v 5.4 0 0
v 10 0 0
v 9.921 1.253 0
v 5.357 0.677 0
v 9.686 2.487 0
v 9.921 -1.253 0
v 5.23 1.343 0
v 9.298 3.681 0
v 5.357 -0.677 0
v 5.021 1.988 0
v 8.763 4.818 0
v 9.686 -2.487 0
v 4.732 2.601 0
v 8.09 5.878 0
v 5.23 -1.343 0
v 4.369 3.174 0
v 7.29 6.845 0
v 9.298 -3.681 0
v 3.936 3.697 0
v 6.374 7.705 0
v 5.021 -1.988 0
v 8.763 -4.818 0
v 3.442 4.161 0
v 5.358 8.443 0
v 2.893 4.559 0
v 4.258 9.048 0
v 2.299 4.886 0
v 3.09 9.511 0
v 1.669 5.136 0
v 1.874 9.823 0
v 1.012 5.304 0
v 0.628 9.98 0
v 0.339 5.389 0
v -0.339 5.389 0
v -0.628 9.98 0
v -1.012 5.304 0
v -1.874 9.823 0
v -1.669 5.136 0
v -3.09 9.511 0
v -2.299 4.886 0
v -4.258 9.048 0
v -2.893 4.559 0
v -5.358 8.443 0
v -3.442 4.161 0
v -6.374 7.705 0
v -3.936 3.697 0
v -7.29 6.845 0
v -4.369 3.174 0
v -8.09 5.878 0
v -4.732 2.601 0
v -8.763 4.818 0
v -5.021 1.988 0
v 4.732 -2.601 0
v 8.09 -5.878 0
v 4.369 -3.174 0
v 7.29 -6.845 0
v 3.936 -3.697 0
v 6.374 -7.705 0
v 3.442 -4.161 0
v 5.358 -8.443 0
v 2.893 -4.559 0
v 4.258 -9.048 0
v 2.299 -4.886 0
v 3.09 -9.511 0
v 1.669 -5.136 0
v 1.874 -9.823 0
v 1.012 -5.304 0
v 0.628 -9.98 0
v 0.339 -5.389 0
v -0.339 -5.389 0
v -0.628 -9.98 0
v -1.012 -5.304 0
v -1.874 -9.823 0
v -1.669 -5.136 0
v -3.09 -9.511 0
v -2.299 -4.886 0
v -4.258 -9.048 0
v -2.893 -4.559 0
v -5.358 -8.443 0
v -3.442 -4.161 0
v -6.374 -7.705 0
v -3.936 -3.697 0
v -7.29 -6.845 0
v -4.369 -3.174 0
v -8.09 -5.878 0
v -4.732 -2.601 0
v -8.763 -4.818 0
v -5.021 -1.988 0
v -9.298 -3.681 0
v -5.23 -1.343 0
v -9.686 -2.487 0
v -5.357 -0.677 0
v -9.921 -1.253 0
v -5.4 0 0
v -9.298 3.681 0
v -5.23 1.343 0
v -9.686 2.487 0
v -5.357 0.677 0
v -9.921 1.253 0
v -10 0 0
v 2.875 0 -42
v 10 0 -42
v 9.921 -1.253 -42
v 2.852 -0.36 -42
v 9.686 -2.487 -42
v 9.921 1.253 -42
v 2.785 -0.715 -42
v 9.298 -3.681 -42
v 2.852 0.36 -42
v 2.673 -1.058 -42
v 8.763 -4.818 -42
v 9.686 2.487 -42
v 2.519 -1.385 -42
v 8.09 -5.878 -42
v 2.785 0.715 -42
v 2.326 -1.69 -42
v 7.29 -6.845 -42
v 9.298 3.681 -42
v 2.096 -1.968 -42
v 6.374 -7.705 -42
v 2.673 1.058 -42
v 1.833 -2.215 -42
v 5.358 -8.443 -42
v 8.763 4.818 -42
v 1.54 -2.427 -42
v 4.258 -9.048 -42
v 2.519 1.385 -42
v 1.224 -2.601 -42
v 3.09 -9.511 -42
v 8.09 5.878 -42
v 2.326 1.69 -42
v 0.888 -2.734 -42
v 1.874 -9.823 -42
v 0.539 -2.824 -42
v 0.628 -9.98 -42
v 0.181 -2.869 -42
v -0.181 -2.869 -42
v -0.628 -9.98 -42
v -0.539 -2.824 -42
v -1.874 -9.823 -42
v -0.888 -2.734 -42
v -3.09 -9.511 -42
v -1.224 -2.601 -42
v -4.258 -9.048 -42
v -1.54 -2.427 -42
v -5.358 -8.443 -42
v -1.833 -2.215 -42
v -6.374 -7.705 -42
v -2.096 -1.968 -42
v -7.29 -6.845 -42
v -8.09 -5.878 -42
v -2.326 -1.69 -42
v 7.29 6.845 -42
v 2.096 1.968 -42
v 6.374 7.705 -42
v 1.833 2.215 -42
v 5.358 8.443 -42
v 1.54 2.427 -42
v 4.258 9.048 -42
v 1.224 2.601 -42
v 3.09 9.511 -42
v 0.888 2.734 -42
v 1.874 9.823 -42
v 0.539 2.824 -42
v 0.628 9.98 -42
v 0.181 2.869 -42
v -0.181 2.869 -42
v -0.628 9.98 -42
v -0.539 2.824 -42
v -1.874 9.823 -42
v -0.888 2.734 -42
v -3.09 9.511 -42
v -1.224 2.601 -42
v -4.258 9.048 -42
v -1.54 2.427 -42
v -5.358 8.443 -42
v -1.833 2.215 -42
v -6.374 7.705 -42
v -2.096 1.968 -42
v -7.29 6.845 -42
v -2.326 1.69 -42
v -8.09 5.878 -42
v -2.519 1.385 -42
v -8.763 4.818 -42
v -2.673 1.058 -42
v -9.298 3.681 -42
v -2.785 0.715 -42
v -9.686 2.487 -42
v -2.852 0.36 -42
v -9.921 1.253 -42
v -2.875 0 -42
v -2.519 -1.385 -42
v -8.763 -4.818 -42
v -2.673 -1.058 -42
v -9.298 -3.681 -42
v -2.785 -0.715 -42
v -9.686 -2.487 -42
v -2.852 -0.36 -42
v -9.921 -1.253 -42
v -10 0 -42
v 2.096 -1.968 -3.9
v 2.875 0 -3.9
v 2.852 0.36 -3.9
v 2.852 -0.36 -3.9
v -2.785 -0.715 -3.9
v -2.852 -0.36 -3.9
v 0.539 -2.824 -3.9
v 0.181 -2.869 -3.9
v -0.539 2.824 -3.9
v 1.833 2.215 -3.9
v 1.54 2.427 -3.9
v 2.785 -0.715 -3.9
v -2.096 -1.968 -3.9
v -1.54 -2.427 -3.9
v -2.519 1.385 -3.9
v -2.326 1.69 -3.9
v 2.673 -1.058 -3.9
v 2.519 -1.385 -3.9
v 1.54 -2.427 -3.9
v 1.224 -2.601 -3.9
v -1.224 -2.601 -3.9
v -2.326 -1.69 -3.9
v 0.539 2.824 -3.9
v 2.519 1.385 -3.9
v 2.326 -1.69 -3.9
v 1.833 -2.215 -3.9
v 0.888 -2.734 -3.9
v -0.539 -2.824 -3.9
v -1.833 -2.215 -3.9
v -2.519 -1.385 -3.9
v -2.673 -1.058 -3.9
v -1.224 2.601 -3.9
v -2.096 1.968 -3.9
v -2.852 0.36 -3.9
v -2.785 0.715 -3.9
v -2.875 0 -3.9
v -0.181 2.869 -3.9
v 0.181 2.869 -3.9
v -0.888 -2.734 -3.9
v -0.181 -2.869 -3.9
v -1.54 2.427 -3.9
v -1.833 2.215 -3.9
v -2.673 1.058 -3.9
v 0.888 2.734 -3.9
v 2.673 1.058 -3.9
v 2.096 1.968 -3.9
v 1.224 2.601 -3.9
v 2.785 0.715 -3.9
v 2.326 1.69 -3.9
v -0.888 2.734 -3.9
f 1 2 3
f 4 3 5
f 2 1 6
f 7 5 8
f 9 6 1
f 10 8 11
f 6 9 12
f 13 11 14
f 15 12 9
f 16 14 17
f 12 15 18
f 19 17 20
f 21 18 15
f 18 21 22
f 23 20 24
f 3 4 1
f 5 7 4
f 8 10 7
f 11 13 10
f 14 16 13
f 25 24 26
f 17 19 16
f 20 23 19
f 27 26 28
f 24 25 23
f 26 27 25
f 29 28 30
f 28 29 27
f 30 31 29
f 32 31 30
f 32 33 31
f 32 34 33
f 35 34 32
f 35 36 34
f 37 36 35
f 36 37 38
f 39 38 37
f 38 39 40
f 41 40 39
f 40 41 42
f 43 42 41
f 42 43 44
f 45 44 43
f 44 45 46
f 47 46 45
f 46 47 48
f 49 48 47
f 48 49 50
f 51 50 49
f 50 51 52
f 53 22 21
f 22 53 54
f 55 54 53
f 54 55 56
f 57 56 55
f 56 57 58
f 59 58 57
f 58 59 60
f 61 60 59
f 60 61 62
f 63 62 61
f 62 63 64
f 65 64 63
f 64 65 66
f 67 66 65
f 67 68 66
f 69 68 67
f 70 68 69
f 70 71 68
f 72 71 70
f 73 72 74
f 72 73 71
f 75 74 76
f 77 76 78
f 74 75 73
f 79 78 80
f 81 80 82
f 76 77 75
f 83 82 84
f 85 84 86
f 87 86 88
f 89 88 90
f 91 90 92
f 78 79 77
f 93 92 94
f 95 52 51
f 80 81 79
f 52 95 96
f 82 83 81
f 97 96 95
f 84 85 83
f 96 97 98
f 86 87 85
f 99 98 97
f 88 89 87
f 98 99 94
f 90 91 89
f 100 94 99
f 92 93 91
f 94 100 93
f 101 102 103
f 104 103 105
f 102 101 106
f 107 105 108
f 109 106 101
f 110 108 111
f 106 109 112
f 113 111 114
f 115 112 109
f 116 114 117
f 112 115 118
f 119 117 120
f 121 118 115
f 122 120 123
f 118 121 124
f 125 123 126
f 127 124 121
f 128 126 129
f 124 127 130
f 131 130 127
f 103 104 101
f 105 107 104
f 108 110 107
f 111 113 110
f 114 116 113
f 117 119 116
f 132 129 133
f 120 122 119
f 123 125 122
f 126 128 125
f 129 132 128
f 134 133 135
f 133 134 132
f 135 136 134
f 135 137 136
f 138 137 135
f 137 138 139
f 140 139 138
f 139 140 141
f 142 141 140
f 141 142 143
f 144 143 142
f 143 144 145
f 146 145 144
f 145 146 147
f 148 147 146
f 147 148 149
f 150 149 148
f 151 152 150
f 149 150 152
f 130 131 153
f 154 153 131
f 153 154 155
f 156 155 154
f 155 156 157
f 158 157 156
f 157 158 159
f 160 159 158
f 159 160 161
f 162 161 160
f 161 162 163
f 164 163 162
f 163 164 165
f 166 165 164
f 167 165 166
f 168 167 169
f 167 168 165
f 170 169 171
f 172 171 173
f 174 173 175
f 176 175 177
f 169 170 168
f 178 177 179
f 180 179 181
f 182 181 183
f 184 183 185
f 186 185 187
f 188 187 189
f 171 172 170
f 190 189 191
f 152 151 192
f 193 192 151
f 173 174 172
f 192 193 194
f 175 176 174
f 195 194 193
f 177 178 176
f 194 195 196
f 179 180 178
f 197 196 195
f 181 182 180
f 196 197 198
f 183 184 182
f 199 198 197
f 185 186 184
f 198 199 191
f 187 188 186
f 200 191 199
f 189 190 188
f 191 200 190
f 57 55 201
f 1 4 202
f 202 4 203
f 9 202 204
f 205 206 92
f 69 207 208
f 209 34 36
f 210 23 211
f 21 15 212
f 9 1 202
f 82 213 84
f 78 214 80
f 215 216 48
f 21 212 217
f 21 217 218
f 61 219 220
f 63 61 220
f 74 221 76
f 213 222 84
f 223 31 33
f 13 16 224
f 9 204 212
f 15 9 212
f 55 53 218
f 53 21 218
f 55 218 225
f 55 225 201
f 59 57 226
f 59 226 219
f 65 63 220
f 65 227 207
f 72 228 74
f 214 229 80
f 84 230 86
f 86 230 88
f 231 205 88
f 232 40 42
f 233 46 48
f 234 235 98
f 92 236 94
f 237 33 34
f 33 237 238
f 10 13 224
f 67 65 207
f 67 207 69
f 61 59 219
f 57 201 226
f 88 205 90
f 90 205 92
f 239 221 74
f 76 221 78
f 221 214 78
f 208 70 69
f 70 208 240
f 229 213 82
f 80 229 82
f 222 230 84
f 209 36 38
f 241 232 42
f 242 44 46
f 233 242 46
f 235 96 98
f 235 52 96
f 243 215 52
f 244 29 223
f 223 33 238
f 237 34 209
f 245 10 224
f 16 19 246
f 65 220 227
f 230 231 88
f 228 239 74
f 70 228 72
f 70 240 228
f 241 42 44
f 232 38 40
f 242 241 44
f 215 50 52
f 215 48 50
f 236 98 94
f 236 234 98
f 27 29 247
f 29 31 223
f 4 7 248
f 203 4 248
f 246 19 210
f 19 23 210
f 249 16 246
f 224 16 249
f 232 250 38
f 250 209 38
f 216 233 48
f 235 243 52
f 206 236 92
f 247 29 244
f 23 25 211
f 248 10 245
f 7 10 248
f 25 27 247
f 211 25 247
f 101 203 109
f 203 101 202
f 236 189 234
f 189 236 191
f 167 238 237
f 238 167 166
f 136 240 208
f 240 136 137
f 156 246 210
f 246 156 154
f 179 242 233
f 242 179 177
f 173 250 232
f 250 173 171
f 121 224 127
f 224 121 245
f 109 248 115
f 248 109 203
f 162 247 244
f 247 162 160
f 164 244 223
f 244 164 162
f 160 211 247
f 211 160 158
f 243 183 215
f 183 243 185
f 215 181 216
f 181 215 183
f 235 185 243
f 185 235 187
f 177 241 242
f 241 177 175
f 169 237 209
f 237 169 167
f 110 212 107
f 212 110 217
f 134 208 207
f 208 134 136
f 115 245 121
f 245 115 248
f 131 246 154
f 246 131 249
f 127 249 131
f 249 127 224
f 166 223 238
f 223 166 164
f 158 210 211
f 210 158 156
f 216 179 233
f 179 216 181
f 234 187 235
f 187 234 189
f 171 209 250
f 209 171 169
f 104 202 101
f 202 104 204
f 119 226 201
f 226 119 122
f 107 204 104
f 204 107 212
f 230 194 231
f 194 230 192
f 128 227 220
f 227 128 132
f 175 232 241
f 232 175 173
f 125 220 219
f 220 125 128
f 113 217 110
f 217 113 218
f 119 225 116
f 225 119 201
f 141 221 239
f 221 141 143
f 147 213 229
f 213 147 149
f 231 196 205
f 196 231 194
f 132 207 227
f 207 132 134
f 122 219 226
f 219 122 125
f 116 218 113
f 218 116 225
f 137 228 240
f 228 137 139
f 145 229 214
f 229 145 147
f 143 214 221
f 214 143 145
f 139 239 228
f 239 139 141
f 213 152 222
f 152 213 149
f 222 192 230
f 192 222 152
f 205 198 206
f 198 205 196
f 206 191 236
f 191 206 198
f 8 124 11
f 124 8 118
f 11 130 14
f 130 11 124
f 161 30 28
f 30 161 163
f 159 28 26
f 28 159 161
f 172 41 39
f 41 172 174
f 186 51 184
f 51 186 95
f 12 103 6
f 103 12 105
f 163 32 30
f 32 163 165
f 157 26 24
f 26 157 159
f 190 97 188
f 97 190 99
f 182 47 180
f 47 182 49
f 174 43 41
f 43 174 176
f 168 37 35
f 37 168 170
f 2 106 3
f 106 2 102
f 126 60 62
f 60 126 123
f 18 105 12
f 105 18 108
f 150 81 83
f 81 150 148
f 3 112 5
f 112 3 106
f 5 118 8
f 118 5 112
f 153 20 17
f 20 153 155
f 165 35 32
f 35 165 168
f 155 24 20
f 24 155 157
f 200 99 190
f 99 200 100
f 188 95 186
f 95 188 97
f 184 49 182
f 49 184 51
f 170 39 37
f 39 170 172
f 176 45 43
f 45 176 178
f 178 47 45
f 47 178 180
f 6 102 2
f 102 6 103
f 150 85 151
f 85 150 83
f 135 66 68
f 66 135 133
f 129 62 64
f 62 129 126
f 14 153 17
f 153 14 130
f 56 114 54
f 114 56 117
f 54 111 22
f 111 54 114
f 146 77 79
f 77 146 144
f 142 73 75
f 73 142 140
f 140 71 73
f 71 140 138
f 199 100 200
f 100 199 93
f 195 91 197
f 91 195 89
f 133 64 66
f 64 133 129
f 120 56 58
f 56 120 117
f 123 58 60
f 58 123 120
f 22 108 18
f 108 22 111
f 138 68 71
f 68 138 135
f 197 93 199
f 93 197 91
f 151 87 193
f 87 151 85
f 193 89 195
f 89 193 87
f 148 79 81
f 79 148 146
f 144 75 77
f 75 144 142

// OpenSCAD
$fn = 50;


difference() {
	union() {
		translate(v = [0, 0, -42.0000000000]) {
			cylinder(h = 42, r = 10.0000000000);
		}
		cylinder(h = 0, r = 13.0000000000);
	}
	union() {
		translate(v = [0, 0, 0]) {
			rotate(a = [0, 0, 0]) {
				difference() {
					union() {
						#translate(v = [0, 0, -42.0000000000]) {
							cylinder(h = 42, r = 2.6000000000);
						}
						#translate(v = [0, 0, -3.9000000000]) {
							cylinder(h = 3.9000000000, r = 10.0000000000, r1 = 2.8750000000, r2 = 5.4000000000);
						}
						#translate(v = [0, 0, -42.0000000000]) {
							cylinder(h = 42, r = 2.8750000000);
						}
						#translate(v = [0, 0, -42.0000000000]) {
							cylinder(h = 42, r = 2.6000000000);
						}
					}
					union();
				}
			}
		}
	}
}
